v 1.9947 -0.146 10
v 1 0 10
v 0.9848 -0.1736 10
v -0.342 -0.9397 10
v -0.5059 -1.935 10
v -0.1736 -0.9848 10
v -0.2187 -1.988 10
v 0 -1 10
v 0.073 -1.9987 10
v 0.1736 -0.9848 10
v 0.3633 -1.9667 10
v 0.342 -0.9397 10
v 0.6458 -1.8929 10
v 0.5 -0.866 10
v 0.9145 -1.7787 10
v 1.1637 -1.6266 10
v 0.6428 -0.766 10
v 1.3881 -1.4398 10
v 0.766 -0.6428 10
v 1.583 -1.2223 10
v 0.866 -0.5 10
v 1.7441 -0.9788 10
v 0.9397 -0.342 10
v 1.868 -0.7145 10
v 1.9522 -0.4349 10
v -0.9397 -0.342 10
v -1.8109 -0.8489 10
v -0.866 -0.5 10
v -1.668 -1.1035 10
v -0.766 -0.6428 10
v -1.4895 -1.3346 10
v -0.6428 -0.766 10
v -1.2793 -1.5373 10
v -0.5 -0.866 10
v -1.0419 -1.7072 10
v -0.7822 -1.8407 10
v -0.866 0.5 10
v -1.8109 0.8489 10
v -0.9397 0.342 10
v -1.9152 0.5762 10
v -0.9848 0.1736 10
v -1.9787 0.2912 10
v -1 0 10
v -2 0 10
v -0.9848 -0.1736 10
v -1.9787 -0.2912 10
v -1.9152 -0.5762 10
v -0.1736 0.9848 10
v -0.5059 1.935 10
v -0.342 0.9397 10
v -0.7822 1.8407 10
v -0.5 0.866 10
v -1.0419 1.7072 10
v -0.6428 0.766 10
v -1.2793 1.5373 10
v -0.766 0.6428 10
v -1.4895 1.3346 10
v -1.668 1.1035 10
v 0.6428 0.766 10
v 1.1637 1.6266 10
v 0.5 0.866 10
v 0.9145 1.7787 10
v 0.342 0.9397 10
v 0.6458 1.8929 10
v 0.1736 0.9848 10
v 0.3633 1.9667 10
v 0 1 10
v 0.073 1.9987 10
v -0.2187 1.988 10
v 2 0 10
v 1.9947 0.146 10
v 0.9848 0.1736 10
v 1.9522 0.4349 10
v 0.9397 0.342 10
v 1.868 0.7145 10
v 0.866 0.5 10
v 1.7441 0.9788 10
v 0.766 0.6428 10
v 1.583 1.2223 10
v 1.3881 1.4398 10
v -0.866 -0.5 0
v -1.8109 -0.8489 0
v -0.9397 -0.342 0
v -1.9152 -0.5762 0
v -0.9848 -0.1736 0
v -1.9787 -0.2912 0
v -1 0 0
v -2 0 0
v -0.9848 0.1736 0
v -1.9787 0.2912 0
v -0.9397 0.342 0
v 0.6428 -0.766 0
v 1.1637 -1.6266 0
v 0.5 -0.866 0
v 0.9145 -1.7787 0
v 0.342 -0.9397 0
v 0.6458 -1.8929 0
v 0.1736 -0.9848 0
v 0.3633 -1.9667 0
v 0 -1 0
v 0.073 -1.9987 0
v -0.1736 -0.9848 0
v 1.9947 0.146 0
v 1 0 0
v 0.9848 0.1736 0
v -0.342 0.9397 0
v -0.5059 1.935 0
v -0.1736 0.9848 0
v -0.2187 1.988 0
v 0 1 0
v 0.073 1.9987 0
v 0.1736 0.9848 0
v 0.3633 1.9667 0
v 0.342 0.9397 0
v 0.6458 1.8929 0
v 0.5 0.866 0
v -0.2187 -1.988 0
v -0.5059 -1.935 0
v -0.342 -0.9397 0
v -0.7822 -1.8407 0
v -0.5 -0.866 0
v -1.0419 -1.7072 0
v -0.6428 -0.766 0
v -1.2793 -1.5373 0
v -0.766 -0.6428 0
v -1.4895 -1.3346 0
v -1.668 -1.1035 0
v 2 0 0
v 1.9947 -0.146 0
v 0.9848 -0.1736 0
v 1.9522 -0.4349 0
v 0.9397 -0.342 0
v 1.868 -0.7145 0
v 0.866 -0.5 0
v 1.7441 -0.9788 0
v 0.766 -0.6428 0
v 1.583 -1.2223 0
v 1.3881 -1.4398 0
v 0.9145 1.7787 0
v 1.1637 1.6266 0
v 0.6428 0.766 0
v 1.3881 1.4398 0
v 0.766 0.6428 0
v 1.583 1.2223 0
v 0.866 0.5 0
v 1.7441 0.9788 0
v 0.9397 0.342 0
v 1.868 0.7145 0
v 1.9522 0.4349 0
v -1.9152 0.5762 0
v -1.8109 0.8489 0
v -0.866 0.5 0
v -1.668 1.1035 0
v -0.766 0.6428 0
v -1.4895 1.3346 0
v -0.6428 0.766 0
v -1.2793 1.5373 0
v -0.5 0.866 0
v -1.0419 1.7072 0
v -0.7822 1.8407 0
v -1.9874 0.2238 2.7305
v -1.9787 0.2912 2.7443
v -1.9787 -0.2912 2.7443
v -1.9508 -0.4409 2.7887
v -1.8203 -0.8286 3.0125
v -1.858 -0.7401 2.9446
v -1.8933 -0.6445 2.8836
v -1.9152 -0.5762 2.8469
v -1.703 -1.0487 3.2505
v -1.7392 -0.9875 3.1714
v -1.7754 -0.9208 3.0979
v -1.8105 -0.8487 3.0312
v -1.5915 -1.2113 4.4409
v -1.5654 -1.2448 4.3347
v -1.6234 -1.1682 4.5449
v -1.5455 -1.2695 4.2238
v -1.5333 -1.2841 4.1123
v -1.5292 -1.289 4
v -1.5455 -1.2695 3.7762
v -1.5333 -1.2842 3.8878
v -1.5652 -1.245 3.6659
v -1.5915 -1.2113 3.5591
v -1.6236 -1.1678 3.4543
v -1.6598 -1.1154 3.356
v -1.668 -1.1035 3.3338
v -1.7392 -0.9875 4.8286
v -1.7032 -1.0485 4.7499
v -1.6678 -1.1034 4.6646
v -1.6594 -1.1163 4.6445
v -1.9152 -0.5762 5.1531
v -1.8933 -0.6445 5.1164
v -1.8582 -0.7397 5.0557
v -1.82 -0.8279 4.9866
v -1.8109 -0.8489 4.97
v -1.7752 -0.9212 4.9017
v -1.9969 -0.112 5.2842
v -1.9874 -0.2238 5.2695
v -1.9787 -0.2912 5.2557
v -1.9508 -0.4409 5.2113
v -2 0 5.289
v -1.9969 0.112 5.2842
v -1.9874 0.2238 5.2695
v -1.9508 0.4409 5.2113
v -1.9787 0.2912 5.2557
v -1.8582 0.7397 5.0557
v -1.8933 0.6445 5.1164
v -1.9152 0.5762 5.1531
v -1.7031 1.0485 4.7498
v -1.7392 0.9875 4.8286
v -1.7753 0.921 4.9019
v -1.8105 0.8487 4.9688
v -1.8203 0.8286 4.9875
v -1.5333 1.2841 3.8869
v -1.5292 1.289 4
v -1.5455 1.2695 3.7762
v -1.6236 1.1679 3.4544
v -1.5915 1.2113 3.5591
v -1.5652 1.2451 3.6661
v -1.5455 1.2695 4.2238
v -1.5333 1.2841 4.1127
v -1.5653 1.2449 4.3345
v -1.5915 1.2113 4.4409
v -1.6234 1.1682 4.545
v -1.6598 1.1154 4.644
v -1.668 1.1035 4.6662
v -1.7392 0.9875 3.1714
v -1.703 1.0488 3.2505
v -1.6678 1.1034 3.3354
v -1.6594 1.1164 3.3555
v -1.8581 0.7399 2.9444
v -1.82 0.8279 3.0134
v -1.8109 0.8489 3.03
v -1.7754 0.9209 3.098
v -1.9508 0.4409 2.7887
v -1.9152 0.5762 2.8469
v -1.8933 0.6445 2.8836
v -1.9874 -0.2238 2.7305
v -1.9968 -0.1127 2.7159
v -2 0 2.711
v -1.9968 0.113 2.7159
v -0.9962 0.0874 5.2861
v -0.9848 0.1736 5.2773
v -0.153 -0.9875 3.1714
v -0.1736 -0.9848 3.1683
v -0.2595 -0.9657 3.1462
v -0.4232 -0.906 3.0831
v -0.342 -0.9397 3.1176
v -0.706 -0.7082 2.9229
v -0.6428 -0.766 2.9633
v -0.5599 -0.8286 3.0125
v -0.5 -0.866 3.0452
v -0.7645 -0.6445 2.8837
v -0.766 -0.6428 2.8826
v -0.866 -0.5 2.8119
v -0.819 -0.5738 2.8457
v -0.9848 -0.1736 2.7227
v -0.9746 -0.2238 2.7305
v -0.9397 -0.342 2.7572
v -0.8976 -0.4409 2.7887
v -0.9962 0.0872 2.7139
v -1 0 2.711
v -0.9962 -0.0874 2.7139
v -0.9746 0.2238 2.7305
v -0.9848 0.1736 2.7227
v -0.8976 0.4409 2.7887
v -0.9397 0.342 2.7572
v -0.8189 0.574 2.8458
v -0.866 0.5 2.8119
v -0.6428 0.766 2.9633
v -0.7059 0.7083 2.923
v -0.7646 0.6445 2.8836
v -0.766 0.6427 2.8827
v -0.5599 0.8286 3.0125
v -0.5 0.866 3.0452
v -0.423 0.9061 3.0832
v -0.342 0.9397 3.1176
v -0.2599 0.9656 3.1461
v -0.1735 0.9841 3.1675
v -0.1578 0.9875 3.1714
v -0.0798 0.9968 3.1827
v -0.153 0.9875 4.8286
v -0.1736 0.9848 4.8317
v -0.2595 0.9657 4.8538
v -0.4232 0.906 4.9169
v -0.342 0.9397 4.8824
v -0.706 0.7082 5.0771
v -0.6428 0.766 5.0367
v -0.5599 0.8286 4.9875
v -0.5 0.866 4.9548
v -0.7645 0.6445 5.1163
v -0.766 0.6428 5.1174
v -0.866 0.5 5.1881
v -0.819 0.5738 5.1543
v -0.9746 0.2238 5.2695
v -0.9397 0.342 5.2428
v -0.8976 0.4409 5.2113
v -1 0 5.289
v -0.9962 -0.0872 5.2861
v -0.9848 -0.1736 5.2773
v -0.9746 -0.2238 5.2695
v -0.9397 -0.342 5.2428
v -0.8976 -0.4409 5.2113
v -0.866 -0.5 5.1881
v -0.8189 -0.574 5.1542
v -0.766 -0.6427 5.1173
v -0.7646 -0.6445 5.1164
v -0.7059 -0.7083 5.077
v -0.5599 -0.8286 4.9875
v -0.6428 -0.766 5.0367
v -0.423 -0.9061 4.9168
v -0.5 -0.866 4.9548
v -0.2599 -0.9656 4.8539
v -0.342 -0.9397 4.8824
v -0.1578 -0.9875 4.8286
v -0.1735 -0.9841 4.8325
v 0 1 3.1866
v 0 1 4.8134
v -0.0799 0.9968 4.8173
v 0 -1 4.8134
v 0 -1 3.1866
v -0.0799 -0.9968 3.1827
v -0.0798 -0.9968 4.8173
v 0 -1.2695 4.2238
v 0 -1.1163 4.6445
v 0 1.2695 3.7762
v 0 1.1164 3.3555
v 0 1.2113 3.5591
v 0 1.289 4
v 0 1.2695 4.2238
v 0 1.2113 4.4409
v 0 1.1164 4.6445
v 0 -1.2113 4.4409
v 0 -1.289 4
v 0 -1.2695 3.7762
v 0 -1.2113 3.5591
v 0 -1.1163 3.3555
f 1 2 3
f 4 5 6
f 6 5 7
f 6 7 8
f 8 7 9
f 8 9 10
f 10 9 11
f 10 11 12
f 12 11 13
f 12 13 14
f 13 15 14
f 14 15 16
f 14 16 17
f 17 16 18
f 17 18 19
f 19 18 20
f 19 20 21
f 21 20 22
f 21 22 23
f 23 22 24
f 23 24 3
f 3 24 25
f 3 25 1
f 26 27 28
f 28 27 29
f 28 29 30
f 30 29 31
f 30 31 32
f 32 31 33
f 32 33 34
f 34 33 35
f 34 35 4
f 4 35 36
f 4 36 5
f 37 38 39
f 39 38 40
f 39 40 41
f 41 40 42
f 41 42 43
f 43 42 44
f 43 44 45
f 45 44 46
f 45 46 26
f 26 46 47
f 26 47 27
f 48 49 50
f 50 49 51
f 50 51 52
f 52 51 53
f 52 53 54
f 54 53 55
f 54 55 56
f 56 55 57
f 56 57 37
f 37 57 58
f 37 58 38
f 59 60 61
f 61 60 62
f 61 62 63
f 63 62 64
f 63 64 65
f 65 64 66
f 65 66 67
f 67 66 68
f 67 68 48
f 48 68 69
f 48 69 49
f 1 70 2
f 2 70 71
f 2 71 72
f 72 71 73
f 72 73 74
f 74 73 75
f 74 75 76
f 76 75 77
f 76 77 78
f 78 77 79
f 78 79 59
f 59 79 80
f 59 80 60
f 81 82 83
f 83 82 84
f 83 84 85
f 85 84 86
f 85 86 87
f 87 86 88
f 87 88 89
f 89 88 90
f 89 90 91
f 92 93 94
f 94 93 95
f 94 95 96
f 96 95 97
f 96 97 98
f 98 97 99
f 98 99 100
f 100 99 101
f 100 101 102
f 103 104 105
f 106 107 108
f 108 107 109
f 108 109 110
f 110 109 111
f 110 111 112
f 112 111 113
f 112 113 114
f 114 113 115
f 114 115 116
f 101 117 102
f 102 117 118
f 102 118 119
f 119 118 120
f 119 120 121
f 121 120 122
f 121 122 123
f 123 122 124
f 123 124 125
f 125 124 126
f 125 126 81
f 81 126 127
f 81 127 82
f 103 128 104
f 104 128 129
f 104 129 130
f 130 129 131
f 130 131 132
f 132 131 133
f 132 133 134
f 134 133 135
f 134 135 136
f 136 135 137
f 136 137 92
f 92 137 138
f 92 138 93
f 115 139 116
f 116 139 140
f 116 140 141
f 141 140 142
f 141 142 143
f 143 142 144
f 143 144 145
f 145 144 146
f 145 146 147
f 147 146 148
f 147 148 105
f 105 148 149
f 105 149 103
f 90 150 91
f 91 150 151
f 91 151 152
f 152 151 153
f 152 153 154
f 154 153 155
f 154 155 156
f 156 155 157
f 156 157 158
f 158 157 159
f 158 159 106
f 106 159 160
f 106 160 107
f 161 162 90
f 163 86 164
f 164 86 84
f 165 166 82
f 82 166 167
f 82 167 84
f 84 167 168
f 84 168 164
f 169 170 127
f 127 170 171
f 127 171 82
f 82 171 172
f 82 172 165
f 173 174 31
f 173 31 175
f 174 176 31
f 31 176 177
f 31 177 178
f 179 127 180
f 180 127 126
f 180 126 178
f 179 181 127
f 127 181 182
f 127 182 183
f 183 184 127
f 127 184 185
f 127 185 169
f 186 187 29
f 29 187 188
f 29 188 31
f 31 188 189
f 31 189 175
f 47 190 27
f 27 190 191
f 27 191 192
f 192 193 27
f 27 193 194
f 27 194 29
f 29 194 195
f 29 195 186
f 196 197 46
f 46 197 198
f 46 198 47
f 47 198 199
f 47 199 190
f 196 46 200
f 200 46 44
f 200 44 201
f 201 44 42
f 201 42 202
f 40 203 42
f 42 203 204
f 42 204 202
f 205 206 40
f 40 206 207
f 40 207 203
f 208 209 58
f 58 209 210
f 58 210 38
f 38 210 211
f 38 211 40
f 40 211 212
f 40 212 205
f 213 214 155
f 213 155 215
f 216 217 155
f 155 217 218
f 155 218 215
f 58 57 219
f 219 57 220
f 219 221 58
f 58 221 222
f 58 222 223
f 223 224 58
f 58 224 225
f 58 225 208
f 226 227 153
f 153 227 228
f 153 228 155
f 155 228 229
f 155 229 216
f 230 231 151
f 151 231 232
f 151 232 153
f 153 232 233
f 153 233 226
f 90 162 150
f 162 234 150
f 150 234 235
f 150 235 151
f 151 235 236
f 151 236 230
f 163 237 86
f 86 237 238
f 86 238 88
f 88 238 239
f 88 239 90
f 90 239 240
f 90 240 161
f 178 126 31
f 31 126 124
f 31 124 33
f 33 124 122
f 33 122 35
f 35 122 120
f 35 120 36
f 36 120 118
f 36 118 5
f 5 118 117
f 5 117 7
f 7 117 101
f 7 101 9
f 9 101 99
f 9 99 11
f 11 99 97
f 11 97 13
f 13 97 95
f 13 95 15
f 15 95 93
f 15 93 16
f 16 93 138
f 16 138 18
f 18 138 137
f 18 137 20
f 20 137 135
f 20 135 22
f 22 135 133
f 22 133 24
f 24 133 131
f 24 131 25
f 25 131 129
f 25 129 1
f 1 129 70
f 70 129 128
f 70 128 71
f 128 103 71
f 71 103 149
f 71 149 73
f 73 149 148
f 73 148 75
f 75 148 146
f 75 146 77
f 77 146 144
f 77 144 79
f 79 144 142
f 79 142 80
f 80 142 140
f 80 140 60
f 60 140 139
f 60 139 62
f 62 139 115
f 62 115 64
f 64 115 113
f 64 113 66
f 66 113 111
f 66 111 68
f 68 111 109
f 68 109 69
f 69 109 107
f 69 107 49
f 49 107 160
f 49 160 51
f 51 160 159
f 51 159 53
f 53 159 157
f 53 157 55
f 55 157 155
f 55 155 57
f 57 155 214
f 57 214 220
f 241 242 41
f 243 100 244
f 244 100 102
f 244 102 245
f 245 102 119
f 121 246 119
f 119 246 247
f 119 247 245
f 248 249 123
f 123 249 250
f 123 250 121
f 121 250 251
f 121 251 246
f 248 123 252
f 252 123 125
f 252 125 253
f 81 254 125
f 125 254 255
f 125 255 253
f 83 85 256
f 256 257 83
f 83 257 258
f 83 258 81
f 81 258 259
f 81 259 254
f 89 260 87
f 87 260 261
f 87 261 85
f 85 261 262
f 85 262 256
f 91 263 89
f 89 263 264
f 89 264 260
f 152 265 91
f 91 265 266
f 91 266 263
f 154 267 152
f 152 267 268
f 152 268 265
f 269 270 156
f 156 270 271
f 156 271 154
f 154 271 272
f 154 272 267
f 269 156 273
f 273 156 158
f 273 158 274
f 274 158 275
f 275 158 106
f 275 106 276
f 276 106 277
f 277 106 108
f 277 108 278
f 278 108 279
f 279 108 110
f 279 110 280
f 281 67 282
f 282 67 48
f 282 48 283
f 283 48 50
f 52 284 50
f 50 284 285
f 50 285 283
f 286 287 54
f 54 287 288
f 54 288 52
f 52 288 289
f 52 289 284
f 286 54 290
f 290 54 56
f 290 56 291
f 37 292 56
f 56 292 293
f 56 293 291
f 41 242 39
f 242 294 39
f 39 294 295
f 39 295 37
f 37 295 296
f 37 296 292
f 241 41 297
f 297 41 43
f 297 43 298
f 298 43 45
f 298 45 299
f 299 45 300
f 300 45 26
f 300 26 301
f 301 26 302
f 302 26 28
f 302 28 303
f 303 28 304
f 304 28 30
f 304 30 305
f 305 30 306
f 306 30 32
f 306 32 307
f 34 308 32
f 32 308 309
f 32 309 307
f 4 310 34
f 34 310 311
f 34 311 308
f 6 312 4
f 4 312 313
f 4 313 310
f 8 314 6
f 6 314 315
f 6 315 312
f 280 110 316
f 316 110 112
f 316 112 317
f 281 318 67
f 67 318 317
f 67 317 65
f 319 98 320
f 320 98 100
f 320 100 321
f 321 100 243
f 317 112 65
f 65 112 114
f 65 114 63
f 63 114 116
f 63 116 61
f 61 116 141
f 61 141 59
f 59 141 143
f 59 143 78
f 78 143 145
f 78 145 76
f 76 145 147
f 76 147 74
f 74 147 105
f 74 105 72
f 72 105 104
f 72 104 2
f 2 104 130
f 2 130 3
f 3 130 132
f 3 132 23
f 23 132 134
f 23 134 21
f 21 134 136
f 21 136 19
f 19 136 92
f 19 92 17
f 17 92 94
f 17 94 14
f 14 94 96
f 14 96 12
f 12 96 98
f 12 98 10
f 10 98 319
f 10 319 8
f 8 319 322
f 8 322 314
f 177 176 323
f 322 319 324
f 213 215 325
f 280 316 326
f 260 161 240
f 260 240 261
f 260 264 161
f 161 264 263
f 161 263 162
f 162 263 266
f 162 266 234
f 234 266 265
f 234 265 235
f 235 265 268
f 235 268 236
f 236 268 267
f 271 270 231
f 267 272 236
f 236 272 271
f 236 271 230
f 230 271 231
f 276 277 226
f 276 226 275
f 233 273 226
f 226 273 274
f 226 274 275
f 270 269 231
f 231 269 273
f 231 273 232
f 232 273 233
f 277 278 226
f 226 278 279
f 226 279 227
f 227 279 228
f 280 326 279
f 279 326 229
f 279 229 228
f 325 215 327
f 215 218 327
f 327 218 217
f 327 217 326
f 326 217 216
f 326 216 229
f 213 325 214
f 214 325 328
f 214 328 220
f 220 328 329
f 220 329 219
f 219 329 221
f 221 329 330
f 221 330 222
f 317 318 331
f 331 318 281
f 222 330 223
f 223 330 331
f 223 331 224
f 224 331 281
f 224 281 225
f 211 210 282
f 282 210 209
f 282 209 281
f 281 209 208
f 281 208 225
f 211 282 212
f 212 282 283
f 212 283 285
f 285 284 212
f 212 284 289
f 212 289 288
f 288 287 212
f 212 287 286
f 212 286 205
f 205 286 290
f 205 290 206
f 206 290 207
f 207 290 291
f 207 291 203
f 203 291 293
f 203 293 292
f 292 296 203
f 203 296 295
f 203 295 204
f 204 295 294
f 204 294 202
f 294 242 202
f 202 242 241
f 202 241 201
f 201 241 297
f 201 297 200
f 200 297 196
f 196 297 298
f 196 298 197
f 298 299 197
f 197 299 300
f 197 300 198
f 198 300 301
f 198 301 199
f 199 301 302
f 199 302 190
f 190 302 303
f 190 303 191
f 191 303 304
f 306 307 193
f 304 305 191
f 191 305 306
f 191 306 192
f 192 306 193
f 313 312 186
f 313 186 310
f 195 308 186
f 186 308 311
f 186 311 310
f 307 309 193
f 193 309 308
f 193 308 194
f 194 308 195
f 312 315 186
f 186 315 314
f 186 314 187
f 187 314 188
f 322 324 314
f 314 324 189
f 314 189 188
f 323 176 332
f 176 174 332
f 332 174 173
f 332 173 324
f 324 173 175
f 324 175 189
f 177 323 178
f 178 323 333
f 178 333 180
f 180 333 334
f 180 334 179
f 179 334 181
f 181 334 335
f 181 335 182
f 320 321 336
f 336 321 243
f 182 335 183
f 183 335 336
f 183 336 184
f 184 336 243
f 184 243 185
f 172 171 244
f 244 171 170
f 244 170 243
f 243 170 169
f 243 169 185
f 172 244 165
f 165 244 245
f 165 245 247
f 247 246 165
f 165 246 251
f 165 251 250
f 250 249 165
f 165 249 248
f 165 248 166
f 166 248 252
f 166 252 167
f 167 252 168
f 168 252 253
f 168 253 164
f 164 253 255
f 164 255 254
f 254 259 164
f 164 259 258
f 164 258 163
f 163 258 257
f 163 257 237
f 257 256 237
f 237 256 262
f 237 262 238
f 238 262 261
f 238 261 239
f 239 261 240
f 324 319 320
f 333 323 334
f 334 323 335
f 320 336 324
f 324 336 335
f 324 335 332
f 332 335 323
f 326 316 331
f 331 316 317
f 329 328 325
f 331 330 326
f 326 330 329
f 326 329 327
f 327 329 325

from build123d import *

# Parameters (mm, degrees)
SKETCH1_R                     = 2
SKETCH1_R_2                   = 1
BOSS_EXTRUDE1_DEPTH           = 10
SKETCH2_R                     = 1.28905
HOLE_FOR_5_40_SET_SCREW_DEPTH = 3


with BuildPart() as part:
    # Sketch1 → Boss-Extrude1 (new body)
    with BuildSketch(Plane.XY):
        Circle(SKETCH1_R)
        Circle(SKETCH1_R_2, mode=Mode.SUBTRACT)
    extrude(amount=BOSS_EXTRUDE1_DEPTH)

    # Sketch2 → hole for 5-40 set screw (cut, through all)
    with BuildSketch(Plane(origin=(0, 0, 0), x_dir=(0, 0, -1), z_dir=(1, 0, 0))):
        with Locations((-4, 0)):
            Circle(SKETCH2_R)
    extrude(amount=-HOLE_FOR_5_40_SET_SCREW_DEPTH, mode=Mode.SUBTRACT)


solid = part.part
